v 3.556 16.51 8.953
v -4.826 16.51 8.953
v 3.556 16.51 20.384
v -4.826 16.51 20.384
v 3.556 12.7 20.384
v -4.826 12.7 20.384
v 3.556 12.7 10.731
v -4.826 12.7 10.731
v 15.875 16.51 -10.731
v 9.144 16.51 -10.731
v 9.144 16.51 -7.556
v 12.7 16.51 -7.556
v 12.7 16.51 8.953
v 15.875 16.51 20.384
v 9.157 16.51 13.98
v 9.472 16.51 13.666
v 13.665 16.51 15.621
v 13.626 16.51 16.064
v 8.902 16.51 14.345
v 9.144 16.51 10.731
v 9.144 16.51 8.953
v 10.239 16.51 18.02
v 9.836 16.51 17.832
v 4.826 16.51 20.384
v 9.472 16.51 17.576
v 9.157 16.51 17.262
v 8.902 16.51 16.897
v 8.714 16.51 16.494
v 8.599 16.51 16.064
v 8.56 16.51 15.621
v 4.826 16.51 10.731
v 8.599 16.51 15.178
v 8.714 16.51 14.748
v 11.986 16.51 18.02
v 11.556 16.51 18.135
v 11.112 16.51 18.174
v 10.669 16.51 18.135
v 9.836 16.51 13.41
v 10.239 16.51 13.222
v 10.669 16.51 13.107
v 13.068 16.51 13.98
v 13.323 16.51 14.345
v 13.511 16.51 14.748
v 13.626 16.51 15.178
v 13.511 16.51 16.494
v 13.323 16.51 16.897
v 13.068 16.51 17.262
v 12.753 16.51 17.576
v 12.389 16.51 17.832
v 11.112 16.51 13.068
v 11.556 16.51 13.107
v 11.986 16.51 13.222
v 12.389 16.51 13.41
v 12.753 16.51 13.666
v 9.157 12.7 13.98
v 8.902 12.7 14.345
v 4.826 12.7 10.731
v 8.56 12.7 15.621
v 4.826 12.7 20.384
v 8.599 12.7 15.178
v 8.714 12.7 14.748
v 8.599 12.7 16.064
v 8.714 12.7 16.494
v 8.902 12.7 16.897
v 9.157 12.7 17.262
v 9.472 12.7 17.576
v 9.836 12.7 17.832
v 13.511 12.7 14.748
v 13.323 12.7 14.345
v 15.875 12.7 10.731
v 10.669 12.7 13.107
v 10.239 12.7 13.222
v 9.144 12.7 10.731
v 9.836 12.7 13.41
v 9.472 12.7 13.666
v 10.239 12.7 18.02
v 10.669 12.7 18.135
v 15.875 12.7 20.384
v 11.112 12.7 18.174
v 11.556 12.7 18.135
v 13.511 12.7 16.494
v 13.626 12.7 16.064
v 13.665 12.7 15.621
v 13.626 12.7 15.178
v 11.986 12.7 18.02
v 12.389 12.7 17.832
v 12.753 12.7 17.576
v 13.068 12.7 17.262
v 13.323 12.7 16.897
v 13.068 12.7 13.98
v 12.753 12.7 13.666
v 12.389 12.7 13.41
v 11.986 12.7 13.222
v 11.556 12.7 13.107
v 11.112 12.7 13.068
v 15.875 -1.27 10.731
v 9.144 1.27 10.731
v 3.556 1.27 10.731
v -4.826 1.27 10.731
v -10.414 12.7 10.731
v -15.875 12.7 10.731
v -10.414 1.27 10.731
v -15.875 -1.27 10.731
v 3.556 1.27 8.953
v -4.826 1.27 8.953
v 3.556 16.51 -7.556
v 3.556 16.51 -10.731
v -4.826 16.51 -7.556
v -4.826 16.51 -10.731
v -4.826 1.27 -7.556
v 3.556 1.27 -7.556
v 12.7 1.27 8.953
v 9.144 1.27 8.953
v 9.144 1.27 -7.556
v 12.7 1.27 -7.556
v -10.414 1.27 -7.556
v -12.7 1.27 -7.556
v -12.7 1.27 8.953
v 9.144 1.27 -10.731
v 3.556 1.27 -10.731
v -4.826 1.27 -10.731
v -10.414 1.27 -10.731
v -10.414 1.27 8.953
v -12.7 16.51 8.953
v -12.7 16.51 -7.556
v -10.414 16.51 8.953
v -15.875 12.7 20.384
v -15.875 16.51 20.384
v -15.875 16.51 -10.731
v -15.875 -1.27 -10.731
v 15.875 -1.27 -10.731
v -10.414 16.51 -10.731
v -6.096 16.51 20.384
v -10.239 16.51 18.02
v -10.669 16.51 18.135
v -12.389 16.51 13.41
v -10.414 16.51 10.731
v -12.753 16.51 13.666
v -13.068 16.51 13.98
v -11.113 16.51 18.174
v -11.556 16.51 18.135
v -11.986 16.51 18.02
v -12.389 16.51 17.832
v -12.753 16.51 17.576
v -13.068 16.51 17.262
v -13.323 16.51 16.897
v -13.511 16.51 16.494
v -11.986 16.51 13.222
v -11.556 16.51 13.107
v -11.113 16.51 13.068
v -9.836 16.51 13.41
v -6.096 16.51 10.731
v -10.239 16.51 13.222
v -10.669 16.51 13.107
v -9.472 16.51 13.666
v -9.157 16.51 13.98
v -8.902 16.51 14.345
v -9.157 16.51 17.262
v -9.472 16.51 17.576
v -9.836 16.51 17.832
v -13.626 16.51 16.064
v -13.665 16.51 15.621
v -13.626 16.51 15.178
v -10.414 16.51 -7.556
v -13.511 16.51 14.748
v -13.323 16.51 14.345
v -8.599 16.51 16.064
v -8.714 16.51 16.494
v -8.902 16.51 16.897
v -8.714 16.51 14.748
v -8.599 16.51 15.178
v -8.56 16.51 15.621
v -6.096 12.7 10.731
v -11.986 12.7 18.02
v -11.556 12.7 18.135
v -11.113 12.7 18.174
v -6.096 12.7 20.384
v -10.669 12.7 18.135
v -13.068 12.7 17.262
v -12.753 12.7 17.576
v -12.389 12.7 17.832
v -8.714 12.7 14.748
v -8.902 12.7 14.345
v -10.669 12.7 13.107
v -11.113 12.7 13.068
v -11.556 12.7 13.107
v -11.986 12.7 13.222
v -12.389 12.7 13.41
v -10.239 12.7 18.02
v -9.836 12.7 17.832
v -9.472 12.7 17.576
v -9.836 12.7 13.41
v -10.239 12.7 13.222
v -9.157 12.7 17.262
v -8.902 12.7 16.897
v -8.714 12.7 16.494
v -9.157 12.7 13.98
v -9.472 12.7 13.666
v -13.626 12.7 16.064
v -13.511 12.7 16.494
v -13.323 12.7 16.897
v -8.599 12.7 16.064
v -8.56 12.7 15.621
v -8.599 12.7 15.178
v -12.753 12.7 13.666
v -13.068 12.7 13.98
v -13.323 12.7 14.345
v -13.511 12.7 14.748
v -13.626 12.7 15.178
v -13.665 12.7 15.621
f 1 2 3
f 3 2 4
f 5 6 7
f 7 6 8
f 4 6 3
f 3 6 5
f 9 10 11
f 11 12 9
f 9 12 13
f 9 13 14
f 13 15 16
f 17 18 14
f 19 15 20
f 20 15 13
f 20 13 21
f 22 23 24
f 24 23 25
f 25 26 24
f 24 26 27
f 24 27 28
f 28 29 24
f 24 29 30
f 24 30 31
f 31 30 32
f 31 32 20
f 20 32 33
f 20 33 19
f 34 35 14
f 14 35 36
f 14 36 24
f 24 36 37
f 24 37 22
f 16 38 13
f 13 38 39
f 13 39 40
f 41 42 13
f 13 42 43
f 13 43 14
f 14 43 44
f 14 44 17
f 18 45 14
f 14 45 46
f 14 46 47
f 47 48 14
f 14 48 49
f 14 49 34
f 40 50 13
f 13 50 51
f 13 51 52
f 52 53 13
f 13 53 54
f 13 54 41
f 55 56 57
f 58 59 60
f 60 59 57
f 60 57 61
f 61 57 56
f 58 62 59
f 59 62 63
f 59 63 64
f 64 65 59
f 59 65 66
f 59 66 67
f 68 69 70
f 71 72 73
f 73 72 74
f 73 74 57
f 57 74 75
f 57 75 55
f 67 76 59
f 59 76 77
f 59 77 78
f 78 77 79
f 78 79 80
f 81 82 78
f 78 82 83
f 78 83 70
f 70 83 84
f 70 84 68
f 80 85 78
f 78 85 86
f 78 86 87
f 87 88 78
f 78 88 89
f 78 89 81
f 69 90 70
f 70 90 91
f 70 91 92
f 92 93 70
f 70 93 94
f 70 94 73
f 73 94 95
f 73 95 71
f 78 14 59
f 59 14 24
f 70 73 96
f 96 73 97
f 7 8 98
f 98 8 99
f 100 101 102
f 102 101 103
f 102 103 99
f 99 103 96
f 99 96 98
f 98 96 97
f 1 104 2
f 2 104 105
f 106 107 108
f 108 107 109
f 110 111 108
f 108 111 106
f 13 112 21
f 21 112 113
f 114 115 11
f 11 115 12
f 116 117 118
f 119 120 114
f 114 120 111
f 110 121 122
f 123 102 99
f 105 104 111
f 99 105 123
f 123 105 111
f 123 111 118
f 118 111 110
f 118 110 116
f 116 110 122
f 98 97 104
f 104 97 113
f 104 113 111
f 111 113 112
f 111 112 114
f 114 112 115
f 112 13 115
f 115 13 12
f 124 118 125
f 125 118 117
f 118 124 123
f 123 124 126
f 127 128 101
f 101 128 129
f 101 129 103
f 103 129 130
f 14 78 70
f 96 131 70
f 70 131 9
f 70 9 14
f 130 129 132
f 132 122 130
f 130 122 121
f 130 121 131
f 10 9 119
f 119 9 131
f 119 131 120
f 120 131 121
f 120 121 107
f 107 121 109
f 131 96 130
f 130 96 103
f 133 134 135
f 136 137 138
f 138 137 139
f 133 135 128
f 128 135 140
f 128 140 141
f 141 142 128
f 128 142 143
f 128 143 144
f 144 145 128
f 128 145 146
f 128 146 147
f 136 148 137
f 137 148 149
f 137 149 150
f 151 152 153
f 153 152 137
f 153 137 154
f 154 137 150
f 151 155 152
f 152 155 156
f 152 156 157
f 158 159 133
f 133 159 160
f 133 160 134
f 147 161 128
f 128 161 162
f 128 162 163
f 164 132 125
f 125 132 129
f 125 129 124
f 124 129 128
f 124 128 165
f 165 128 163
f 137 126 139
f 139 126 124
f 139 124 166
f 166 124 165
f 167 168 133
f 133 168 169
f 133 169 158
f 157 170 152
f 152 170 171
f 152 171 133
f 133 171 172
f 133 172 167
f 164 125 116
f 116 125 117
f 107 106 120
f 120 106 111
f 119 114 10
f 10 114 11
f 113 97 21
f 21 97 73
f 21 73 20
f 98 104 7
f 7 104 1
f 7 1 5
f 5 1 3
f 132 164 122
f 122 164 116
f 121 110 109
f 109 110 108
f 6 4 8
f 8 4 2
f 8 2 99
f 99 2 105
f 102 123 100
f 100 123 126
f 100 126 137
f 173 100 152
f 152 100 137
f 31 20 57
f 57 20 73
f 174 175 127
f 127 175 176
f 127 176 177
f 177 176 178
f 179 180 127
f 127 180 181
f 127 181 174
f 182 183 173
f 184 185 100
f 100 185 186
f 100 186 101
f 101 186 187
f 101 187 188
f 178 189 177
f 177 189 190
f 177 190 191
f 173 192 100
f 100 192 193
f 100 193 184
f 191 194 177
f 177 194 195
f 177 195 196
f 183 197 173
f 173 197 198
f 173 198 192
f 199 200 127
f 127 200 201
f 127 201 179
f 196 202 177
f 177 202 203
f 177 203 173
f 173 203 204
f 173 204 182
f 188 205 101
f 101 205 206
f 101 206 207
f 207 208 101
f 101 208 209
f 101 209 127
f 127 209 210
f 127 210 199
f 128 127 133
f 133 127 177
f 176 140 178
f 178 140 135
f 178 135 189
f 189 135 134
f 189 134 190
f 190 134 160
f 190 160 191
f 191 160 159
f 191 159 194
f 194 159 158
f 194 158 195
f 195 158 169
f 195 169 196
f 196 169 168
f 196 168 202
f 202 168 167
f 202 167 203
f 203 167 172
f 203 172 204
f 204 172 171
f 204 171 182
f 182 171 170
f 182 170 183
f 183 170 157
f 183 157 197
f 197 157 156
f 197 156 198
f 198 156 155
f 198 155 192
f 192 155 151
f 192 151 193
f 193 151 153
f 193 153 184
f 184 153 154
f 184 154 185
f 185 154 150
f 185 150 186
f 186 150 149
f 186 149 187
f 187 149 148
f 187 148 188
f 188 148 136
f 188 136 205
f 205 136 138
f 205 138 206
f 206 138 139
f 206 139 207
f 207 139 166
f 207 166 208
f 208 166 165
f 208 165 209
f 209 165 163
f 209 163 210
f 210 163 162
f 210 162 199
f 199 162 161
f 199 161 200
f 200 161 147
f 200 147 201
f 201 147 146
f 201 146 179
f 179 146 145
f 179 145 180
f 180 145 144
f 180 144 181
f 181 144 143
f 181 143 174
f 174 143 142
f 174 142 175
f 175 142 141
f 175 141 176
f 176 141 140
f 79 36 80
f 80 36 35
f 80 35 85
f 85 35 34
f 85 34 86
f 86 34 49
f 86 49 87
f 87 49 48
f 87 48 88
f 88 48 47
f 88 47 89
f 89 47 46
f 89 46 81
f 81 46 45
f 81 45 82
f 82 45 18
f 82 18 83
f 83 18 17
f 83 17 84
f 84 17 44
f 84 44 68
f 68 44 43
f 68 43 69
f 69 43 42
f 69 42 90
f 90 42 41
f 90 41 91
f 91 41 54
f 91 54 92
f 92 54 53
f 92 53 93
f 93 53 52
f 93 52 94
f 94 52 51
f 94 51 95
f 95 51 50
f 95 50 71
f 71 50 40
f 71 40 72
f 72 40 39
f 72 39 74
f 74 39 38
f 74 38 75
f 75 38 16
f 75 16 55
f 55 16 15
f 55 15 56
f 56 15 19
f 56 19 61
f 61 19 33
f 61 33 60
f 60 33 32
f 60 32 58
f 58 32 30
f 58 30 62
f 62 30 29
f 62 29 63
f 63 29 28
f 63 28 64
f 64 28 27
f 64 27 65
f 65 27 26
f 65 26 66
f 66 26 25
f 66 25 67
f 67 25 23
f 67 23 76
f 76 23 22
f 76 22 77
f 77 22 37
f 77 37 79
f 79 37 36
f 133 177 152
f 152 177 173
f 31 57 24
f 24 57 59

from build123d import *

# Parameters (mm, degrees)
SKETCH1_W              = 31.75
SKETCH1_H              = 21.463
PLATE_DEPTH            = 1.27
SKETCH4_W              = 31.75
SKETCH4_H              = 15.24
BOSS_EXTRUDE1_DEPTH    = 1.778
SKETCH5_W              = 3.175
SKETCH5_H              = 15.24
BOSS_EXTRUDE2_DEPTH    = 19.685
BOSS_EXTRUDE5_REACH    = 36.703
SKETCH9_W              = 3.175
SKETCH9_H              = 15.24
SKETCH11_W             = 5.588
SKETCH11_H             = 15.24
CUT_EXTRUDE1_DEPTH     = 32.388789304
SKETCH13_W             = 31.75
SKETCH13_H             = 3.81
BOSS_EXTRUDE7_DEPTH    = 9.652
F_10_CLEARANCE_HOLE1_D = 5.1054
SKETCH18_W             = 1.27
SKETCH18_H             = 9.652
CUT_EXTRUDE6_DEPTH     = 32.362893636


with BuildPart() as part:
    # Sketch1 → Plate (new, symmetric)
    with BuildSketch(Plane(origin=(0, 0, 0), x_dir=(1, 0, 0), z_dir=(0, 1, 0))):
        Rectangle(SKETCH1_W, SKETCH1_H)
    extrude(amount=PLATE_DEPTH, both=True)

    # Sketch4 → Boss-Extrude1 (add)
    with BuildSketch(Plane.XY.offset(10.7315)):
        with Locations((0, 8.89)):
            Rectangle(SKETCH4_W, SKETCH4_H)
    extrude(amount=-BOSS_EXTRUDE1_DEPTH)

    # Sketch5 → Boss-Extrude2 (add)
    with BuildSketch(Plane(origin=(0, 0, 8.9535), x_dir=(-1, 0, 0), z_dir=(0, 0, -1))):
        with Locations((-14.2875, 8.89)):
            Rectangle(SKETCH5_W, SKETCH5_H)
        with Locations((14.2875, 8.89)):
            Rectangle(SKETCH5_W, SKETCH5_H)
    extrude(amount=BOSS_EXTRUDE2_DEPTH)

    # Sketch9 → Boss-Extrude5 (add, up to next)
    with BuildSketch(Plane.ZY.offset(-12.7), mode=Mode.PRIVATE) as boss_extrude5_sk1:
        with Locations((-9.144, 8.89)):
            Rectangle(SKETCH9_W, SKETCH9_H)
    boss_extrude5_tool1 = extrude(boss_extrude5_sk1.sketch, amount=BOSS_EXTRUDE5_REACH, mode=Mode.PRIVATE) - part.part
    add(boss_extrude5_tool1.solids().sort_by_distance((12.7, 8.89, -9.144))[0])

    # Sketch11 → Cut-Extrude1 (cut, through all)
    with BuildSketch(Plane(origin=(0, 0, -10.7315), x_dir=(-1, 0, 0), z_dir=(0, 0, -1))):
        with Locations((-6.35, 8.89)):
            Rectangle(SKETCH11_W, SKETCH11_H)
        with Locations((7.62, 8.89)):
            Rectangle(SKETCH11_W, SKETCH11_H)
    extrude(amount=-CUT_EXTRUDE1_DEPTH, mode=Mode.SUBTRACT)

    # Sketch13 → Boss-Extrude7 (add)
    with BuildSketch(Plane.XY.offset(10.7315)):
        with Locations((0, 14.605)):
            Rectangle(SKETCH13_W, SKETCH13_H)
    extrude(amount=BOSS_EXTRUDE7_DEPTH)

    # #10 Clearance Hole1 (through all)
    with Locations(Plane(origin=(11.1125, 16.51, 15.621), x_dir=(0, 0, 1), z_dir=(0, 1, 0))):
        with Locations((0, 0), (0, -22.225)):
            Hole(F_10_CLEARANCE_HOLE1_D / 2)

    # Sketch18 → Cut-Extrude6 (cut, through all)
    with BuildSketch(Plane(origin=(0, 16.51, 0), x_dir=(1, 0, 0), z_dir=(0, 1, 0))):
        with Locations((-5.461, -15.5575)):
            Rectangle(SKETCH18_W, SKETCH18_H)
        with Locations((4.191, -15.5575)):
            Rectangle(SKETCH18_W, SKETCH18_H)
    extrude(amount=-CUT_EXTRUDE6_DEPTH, mode=Mode.SUBTRACT)


solid = part.part
